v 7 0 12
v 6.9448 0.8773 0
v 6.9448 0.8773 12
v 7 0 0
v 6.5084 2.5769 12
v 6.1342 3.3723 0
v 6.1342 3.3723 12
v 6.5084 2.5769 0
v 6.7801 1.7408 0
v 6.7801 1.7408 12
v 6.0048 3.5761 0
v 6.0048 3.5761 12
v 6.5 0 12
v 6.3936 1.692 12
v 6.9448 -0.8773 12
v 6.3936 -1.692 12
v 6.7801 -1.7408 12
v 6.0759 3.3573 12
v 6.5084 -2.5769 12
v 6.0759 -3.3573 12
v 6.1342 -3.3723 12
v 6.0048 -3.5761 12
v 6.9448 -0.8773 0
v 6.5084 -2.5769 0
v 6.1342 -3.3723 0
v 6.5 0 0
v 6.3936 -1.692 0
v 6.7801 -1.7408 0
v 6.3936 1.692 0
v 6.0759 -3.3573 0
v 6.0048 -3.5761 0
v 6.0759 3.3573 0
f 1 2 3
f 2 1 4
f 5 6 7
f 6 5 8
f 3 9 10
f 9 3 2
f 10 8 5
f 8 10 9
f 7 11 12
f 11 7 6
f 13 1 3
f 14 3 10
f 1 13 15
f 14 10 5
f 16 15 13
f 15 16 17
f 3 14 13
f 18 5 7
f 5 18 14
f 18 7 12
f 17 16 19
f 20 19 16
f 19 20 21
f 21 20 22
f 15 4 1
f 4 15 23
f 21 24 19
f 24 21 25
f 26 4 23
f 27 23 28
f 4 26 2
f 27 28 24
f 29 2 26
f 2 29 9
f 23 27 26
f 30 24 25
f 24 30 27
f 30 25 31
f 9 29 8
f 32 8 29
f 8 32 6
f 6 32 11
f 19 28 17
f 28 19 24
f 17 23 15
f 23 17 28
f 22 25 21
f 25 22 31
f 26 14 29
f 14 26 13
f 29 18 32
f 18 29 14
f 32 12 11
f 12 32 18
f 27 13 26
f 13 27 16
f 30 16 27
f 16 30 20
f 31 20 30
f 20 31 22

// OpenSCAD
$fn = 50;


difference() {
	union() {
		cylinder(h = 12, r = 7.0000000000);
		translate(v = [-10.0000000000, 0, 0]) {
			cylinder(h = 12, r = 7.0000000000);
		}
	}
	union() {
		cylinder(h = 12, r = 3.2500000000);
		cylinder(h = 12, r = 1.8000000000);
		cylinder(h = 12, r = 1.8000000000);
		cylinder(h = 12, r = 1.8000000000);
		translate(v = [-14.5000000000, 0, 0]) {
			hull() {
				translate(v = [-3.7500000000, 0.0000000000, 0]) {
					cylinder(h = 12, r = 10.5000000000);
				}
				translate(v = [3.7500000000, 0.0000000000, 0]) {
					cylinder(h = 12, r = 10.5000000000);
				}
				translate(v = [-3.7500000000, -0.0000000000, 0]) {
					cylinder(h = 12, r = 10.5000000000);
				}
				translate(v = [3.7500000000, -0.0000000000, 0]) {
					cylinder(h = 12, r = 10.5000000000);
				}
			}
		}
		translate(v = [-7.0000000000, 0, 0.0000000000]) {
			cylinder(h = 12, r = 13.5000000000);
		}
	}
}
